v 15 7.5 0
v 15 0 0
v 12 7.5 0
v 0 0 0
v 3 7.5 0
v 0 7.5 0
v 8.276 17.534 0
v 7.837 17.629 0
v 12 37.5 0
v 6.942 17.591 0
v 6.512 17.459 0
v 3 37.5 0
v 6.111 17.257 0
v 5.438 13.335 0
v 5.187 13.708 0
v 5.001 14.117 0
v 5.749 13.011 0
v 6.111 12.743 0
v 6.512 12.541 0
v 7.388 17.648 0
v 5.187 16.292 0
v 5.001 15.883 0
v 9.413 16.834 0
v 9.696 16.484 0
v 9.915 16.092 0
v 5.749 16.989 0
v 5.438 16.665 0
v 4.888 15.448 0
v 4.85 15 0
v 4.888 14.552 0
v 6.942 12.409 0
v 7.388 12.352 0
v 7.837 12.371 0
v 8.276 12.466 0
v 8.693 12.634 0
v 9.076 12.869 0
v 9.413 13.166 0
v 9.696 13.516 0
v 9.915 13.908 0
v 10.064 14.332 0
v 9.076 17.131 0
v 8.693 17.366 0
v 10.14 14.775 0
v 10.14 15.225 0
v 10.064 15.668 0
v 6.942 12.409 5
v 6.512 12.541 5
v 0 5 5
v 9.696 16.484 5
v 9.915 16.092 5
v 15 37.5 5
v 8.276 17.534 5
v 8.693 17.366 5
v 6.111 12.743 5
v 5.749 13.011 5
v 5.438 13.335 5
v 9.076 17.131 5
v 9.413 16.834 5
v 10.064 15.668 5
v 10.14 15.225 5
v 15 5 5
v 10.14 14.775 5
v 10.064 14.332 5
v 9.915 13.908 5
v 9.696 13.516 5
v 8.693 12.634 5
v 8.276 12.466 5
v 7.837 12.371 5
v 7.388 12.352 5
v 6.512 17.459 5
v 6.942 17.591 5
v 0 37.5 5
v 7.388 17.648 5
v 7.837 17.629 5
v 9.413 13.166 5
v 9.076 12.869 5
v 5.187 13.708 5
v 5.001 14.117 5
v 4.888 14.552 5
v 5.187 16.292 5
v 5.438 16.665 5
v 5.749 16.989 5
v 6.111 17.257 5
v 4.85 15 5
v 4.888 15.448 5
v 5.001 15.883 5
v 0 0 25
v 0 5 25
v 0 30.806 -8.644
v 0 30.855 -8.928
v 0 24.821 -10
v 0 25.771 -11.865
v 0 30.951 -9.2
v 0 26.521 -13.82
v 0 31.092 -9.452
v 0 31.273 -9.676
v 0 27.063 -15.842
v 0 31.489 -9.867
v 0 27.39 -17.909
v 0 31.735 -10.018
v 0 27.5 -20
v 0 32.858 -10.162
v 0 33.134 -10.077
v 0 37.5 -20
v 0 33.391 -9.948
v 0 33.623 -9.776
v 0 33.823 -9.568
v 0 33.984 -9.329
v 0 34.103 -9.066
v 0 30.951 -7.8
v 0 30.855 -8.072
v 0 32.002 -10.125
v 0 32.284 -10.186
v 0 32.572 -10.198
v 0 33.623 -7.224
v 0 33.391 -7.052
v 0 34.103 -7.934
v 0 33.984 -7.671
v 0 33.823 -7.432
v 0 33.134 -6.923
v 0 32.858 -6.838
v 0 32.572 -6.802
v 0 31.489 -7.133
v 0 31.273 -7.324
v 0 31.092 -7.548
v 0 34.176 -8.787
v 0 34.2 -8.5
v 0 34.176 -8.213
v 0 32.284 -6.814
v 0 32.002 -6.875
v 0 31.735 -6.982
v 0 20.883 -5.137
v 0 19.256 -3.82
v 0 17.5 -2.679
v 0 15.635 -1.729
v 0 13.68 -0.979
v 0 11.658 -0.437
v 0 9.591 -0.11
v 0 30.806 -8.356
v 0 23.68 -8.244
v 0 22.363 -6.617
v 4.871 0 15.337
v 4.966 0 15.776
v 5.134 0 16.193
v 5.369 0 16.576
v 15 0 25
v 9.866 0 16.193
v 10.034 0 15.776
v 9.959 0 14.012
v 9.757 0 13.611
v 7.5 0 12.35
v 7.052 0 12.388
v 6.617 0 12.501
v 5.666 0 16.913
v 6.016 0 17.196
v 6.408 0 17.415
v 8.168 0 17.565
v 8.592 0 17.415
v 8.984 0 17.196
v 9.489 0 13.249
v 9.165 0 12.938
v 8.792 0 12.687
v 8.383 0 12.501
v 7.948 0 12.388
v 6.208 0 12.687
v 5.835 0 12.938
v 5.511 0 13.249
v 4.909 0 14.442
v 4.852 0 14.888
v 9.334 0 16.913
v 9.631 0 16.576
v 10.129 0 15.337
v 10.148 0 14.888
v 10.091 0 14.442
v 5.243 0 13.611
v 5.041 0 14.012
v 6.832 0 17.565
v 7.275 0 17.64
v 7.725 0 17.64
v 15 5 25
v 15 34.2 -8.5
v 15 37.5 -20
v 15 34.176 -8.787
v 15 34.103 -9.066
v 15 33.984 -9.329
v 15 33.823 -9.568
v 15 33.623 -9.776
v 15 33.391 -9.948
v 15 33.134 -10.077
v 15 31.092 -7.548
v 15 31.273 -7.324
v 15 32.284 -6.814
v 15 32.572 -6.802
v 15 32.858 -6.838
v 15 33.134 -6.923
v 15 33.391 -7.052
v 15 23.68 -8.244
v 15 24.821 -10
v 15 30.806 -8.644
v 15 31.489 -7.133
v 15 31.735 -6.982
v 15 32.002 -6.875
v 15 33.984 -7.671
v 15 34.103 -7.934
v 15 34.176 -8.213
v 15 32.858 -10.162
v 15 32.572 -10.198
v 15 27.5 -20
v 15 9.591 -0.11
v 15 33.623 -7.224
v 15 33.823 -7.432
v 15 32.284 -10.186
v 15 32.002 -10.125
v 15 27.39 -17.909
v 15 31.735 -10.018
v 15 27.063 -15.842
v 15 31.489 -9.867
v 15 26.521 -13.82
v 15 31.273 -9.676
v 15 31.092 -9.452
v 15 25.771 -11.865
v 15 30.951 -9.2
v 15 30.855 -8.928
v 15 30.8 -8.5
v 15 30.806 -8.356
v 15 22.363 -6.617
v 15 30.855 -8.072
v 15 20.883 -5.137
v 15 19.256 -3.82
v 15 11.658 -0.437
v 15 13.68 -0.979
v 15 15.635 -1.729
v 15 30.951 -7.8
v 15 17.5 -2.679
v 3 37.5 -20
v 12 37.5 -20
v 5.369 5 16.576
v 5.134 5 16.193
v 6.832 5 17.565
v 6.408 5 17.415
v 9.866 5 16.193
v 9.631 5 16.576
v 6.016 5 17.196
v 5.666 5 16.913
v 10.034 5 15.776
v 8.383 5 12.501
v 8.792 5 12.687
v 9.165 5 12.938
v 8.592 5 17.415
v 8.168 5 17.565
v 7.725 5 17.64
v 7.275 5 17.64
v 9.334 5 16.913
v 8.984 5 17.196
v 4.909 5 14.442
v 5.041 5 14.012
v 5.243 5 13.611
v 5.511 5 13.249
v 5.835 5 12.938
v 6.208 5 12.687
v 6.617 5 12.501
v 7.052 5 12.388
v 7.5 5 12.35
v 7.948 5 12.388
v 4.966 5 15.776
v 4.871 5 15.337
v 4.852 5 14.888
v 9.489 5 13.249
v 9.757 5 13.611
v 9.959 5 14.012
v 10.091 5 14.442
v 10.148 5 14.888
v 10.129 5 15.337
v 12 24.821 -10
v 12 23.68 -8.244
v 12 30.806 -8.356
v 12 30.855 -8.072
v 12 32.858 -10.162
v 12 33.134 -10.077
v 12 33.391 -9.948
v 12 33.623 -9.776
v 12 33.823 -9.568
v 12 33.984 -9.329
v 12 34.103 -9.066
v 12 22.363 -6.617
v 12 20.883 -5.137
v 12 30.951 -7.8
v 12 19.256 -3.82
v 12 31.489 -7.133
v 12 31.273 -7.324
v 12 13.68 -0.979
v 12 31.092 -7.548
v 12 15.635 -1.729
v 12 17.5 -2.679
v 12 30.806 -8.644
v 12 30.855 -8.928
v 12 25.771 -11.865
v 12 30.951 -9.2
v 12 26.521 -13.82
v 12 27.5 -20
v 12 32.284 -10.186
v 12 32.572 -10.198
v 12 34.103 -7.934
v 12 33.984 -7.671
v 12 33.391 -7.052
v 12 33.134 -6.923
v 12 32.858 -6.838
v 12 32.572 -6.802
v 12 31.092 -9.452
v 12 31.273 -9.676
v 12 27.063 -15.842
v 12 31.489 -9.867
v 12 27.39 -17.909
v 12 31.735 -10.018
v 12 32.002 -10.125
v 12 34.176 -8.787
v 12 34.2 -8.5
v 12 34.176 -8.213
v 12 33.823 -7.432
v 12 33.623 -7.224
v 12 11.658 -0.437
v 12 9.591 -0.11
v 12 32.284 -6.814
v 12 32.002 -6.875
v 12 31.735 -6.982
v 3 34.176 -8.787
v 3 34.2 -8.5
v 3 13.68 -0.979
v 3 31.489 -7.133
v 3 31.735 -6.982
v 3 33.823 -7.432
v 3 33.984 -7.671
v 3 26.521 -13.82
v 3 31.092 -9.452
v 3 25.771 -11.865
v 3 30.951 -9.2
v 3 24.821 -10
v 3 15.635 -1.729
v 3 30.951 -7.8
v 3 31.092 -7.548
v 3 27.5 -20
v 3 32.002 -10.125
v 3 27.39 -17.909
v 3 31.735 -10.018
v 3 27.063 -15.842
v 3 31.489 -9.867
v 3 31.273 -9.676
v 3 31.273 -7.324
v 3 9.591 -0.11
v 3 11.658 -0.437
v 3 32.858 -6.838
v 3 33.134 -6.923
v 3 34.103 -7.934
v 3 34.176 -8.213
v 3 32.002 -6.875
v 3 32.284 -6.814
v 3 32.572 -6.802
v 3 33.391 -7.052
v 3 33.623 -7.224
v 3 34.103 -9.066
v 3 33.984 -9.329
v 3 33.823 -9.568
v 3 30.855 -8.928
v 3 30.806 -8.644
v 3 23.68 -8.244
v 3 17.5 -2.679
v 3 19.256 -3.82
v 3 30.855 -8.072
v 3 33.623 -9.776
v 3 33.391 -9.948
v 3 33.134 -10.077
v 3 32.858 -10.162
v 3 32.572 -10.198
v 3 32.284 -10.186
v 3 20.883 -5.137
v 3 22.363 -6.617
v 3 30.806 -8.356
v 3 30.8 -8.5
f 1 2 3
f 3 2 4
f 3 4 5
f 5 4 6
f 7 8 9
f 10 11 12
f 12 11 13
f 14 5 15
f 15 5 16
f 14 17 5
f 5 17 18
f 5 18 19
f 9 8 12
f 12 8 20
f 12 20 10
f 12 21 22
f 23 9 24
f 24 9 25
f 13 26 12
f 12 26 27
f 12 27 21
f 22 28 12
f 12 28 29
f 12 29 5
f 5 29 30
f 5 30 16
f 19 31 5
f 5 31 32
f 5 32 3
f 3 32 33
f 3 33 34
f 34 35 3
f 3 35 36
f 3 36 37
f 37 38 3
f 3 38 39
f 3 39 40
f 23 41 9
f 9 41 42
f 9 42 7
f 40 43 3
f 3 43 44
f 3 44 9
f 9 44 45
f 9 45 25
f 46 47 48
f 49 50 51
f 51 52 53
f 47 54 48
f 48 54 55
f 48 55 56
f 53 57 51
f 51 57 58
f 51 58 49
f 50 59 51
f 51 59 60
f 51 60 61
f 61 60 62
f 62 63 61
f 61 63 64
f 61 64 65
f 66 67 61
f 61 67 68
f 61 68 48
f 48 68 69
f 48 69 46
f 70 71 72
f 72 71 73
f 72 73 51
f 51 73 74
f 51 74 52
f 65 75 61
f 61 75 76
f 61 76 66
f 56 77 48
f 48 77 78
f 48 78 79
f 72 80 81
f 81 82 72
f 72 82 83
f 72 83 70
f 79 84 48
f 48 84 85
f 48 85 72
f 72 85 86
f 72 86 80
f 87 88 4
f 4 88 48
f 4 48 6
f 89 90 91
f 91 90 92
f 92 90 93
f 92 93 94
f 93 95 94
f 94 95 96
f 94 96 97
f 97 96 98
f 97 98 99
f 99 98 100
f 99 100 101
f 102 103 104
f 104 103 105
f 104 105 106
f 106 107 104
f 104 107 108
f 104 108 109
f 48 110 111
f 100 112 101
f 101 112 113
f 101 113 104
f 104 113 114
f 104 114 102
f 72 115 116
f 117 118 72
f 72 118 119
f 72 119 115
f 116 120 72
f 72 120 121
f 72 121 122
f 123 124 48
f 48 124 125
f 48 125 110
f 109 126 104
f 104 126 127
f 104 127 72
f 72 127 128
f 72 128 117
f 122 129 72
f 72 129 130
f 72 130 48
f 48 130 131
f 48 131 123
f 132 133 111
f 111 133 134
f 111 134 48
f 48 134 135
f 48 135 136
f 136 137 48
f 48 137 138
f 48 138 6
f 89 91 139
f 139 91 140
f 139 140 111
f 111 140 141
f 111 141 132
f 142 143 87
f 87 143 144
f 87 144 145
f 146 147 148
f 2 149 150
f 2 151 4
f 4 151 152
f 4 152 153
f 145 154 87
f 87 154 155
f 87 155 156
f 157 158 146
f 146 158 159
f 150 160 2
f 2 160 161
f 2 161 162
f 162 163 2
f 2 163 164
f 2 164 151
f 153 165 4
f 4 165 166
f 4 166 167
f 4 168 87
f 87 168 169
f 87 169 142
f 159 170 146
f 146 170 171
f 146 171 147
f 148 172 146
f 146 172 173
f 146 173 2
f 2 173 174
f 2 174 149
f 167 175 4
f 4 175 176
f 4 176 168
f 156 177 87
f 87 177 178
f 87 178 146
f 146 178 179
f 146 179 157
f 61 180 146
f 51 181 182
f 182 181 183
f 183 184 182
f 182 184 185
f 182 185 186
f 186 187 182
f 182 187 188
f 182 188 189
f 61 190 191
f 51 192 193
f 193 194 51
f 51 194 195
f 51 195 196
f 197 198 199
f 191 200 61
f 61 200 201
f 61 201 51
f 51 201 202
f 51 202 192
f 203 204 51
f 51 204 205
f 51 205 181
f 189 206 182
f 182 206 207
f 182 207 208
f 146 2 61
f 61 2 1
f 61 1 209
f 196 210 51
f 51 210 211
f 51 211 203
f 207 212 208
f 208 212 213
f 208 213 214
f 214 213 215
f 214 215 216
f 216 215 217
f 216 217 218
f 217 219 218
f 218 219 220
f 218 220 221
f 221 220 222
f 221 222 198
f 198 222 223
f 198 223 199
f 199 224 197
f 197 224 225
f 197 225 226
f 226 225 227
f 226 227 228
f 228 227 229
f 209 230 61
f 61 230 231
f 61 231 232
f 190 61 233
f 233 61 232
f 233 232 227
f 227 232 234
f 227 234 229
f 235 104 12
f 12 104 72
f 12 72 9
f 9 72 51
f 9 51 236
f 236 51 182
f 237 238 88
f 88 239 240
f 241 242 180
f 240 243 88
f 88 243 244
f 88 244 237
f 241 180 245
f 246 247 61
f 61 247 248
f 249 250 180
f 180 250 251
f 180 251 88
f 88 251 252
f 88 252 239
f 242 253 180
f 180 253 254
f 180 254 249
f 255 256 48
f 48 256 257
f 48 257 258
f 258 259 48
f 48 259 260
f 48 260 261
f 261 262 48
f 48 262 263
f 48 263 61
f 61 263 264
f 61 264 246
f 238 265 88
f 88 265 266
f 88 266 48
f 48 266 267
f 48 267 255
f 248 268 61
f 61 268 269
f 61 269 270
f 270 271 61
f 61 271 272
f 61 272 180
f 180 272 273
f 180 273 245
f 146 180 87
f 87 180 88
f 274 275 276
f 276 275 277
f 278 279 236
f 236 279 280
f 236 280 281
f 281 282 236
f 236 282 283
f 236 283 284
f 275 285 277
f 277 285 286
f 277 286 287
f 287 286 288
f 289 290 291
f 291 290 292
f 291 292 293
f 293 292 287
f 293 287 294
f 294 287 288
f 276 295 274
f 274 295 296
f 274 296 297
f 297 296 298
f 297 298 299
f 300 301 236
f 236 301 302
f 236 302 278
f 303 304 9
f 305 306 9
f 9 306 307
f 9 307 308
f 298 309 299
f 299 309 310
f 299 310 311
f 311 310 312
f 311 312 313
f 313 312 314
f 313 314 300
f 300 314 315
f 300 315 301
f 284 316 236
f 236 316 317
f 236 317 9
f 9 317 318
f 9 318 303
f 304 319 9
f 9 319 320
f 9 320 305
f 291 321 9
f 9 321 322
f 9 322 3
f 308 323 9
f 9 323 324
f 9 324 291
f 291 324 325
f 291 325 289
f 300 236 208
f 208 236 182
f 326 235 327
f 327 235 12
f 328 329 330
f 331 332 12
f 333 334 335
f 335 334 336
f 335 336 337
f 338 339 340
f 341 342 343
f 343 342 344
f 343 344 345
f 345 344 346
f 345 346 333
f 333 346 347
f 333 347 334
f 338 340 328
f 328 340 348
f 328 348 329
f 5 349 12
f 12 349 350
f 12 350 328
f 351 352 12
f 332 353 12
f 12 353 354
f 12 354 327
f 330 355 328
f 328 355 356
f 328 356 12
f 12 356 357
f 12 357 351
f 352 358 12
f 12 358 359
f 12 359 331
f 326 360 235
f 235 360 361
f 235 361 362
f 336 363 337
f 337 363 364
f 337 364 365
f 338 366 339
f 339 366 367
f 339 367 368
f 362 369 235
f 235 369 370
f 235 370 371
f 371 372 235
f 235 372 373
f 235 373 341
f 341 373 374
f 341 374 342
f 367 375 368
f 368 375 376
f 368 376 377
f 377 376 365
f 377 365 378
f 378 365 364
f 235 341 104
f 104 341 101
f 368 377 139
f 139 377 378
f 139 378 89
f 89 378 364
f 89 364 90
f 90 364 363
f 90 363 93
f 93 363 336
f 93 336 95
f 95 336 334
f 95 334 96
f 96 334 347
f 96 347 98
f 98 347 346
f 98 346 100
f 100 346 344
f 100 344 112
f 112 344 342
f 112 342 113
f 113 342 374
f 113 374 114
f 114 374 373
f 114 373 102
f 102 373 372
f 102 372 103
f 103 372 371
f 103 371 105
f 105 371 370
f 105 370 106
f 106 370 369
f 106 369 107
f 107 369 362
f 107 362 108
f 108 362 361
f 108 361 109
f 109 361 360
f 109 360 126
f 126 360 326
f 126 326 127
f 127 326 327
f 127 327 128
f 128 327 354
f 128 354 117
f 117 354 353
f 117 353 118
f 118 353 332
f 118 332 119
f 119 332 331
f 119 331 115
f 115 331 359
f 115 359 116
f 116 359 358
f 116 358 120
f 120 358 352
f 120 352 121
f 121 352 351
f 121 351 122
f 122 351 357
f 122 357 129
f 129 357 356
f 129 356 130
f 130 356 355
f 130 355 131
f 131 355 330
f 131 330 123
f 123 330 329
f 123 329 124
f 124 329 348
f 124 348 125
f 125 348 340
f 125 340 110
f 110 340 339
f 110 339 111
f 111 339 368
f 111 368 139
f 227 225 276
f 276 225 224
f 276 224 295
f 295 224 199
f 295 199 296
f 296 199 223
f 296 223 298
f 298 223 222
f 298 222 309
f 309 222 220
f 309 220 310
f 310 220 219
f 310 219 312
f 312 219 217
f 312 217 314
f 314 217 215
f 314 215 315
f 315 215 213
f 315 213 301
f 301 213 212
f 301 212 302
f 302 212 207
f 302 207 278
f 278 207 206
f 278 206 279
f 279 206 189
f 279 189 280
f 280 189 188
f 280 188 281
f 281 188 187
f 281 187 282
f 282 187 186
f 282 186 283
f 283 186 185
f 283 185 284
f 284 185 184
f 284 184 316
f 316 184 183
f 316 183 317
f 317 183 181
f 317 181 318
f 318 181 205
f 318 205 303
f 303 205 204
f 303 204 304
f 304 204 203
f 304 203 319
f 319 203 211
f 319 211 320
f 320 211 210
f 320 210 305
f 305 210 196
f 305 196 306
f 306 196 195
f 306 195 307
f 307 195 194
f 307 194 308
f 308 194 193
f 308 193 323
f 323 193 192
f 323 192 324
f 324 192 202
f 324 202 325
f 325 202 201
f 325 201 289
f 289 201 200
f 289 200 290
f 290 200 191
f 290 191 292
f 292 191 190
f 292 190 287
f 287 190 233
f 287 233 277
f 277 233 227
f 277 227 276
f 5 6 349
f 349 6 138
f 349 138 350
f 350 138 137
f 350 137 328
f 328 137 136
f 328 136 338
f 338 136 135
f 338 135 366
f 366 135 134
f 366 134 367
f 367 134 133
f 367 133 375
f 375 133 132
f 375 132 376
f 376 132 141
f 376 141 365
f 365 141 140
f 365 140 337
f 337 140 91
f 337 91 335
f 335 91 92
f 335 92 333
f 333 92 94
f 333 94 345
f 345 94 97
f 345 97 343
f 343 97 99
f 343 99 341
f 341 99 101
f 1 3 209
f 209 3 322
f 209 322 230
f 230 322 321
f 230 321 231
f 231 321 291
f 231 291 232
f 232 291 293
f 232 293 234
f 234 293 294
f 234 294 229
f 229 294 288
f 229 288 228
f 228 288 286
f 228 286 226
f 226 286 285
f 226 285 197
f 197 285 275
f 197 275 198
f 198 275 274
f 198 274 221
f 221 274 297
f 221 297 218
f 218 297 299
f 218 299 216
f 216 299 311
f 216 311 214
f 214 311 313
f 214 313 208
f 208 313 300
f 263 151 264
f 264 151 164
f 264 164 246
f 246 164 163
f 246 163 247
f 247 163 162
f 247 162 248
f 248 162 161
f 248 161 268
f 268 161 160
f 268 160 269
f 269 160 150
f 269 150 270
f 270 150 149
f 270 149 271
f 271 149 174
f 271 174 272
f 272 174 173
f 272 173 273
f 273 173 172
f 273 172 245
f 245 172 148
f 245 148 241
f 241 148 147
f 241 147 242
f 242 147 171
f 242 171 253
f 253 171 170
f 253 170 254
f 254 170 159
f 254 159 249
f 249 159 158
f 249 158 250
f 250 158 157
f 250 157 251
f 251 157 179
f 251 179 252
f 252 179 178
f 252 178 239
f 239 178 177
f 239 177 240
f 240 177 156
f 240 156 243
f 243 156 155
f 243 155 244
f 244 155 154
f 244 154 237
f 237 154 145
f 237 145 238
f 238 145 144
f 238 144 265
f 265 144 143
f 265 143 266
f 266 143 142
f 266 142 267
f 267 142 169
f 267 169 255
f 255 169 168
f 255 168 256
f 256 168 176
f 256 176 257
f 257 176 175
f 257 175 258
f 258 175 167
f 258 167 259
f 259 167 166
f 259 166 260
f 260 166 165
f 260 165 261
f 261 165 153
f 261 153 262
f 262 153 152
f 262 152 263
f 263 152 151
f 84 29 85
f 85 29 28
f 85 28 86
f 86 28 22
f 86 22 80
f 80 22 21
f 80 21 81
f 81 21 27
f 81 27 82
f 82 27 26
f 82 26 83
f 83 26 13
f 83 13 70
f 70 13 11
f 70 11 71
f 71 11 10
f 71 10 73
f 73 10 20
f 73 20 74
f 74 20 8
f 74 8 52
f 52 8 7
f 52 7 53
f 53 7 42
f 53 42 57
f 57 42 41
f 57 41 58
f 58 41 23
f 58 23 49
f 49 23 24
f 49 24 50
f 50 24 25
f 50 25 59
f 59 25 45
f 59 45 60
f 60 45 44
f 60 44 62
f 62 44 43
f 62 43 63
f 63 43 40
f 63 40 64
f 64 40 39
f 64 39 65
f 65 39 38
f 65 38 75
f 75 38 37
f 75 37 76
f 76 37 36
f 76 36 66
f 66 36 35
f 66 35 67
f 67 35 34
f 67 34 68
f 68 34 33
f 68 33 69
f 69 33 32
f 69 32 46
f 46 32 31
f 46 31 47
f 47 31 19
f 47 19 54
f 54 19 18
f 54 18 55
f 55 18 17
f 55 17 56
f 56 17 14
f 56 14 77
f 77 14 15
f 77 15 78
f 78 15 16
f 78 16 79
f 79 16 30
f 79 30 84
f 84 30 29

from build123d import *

# Parameters (mm, degrees)
SKETCH2_W               = 15
SKETCH2_H               = 37.5
BOSS_EXTRUDE1_DEPTH     = 5
SKETCH3_W               = 15
SKETCH3_H               = 5
BOSS_EXTRUDE2_DEPTH     = 20
SKETCH4_W               = 3
SKETCH4_H               = 10
BOSS_EXTRUDE3_DEPTH     = 20
CUT_EXTRUDE1_DEPTH      = 48.5
CUT_EXTRUDE1_DEPTH_BACK = 48.5
SKETCH5_R               = 1.7
FILLET1_R               = 20
SKETCH6_R               = 2.65
CUT_EXTRUDE2_DEPTH      = 10
SKETCH7_R               = 2.65
CUT_EXTRUDE3_DEPTH      = 10


with BuildPart() as part:
    # Sketch2 → Boss-Extrude1 (new body)
    with BuildSketch(Plane.XY):
        with Locations((7.5, 18.75)):
            Rectangle(SKETCH2_W, SKETCH2_H)
    extrude(amount=BOSS_EXTRUDE1_DEPTH)

    # Sketch3 → Boss-Extrude2 (add)
    with BuildSketch(Plane.XY.offset(5)):
        with Locations((7.5, 2.5)):
            Rectangle(SKETCH3_W, SKETCH3_H)
    extrude(amount=BOSS_EXTRUDE2_DEPTH)

    # Sketch4 → Boss-Extrude3 (add)
    with BuildSketch(Plane(origin=(0, 0, 0), x_dir=(-1, 0, 0), z_dir=(0, 0, -1))):
        with Locations((-13.5, 32.5)):
            Rectangle(SKETCH4_W, SKETCH4_H)
        with Locations((-1.5, 32.5)):
            Rectangle(SKETCH4_W, SKETCH4_H)
    extrude(amount=BOSS_EXTRUDE3_DEPTH)

    # Sketch5 → Cut-Extrude1 (cut, two sides: drawn at the far end of the back side and taken through both)
    with BuildSketch(Plane(origin=(15, 0, 0), x_dir=(0, 0, -1), z_dir=(1, 0, 0)).offset(-CUT_EXTRUDE1_DEPTH_BACK)):
        with Locations(Location((8.5, 32.5, 0), (0, 0, 90))):
            Circle(SKETCH5_R)
    extrude(amount=CUT_EXTRUDE1_DEPTH + CUT_EXTRUDE1_DEPTH_BACK, mode=Mode.SUBTRACT)

    # Fillet1
    fillet1_edges = [part.edges().sort_by_distance(p)[0] for p in [
        (1.5, 27.5, 0),
        (13.5, 27.5, 0),
    ]]
    fillet(fillet1_edges, radius=FILLET1_R - 0.0001)  # a hair under: the kernel refuses the full size

    # Sketch6 → Cut-Extrude2 (cut)
    with BuildSketch(Plane.XZ):
        with Locations(Location((7.5, 15, 0), (0, 0, 270))):
            Circle(SKETCH6_R)
    extrude(amount=-CUT_EXTRUDE2_DEPTH, mode=Mode.SUBTRACT)

    # Sketch7 → Cut-Extrude3 (cut)
    with BuildSketch(Plane(origin=(0, 0, 0), x_dir=(-1, 0, 0), z_dir=(0, 0, -1))):
        with Locations((-7.5, 15)):
            Circle(SKETCH7_R)
    extrude(amount=-CUT_EXTRUDE3_DEPTH, mode=Mode.SUBTRACT)


solid = part.part
